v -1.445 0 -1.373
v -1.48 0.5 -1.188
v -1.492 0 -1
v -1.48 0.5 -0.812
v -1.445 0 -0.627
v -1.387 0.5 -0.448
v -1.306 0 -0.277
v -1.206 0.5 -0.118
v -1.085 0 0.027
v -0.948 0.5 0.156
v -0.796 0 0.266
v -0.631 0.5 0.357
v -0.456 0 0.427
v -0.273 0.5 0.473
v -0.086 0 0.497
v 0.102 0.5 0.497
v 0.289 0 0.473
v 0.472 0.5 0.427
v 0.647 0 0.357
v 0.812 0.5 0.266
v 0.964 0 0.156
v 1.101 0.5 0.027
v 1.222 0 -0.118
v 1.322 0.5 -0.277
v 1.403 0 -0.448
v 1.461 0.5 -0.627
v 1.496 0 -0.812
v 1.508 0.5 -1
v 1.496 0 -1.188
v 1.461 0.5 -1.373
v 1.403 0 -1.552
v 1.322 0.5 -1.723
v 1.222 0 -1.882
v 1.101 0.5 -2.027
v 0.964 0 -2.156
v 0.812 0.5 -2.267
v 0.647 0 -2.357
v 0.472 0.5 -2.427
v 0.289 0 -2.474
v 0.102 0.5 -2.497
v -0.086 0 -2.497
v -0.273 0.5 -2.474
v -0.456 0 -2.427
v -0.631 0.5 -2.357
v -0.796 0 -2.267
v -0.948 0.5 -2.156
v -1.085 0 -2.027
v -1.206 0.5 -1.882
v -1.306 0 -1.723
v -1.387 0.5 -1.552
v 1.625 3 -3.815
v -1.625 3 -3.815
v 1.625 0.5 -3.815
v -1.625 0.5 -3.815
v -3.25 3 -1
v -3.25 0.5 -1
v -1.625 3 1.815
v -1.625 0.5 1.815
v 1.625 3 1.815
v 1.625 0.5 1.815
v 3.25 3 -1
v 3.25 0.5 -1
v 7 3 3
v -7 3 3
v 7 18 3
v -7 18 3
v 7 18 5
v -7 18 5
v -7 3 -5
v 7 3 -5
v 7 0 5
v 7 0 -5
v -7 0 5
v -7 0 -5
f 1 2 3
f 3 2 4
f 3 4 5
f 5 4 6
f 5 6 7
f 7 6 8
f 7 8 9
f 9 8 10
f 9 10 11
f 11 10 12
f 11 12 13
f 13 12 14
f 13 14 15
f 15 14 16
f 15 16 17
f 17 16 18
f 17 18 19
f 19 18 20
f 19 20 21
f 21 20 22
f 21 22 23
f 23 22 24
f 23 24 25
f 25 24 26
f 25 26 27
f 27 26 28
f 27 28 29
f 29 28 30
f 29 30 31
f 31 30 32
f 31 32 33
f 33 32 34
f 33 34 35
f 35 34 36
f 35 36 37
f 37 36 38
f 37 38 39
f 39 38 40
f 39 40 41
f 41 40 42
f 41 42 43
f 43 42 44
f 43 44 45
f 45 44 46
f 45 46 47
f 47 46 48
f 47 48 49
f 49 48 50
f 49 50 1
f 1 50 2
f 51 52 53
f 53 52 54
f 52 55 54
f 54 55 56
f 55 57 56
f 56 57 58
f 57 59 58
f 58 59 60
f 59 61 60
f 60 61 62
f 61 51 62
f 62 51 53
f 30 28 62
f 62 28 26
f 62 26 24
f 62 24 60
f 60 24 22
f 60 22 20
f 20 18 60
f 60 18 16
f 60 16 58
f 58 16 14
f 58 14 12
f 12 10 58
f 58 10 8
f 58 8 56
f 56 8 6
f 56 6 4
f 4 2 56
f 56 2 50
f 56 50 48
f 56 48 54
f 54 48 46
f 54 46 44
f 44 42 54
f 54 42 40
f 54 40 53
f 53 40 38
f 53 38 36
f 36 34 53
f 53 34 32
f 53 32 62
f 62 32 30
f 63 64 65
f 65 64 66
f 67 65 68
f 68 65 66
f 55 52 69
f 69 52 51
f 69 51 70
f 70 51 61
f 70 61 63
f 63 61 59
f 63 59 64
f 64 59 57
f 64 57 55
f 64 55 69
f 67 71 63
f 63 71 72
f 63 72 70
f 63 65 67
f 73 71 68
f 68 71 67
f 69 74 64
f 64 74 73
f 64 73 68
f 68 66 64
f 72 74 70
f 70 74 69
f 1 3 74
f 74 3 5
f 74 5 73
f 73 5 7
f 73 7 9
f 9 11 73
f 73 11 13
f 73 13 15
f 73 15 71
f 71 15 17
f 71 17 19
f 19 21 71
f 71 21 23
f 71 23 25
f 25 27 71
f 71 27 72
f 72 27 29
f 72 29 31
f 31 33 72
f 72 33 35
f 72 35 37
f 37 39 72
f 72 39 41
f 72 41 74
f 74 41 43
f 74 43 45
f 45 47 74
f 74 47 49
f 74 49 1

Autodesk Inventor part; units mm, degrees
ref_plane "YZ Plane" through (0, 0, 0) normal (1, 0, 0) x (0, 1, 0)
ref_plane "XZ Plane" through (0, 0, 0) normal (0, 1, 0) x (-1, 0, 0)
ref_plane "XY Plane" through (0, 0, 0) normal (0, 0, 1) x (1, 0, 0)
sketch "Sketch1" plane through (0, 0, 0) normal (0, 1, 0) x (-1, 0, 0)
  line L0 (9.8, 0) -> (-9.8, 0) projected
  line L1 (0, -7) -> (0, 7) projected
  line L2 (-7, 5) -> (7, 5)
  line L3 (7, 5) -> (7, -5)
  line L4 (7, -5) -> (-7, -5)
  line L5 (-7, -5) -> (-7, 5)
  line L6 (-7, 5) -> (7, -5) construction
  line L7 (7, 5) -> (-7, -5) construction
  point P0 (0, 0)
  dimension "d0" = 14
  dimension "d1" = 10
extrude "Extrusion1" add sketch "Sketch1" along normal blind 3
sketch "Sketch2" plane through (0, 3, 0) normal (0, 1, 0) x (1, 0, 0)
  line L0 (-7, 5) -> (-7, -5) projected
  line L1 (7, -5) -> (7, 5) projected
  line L2 (-7, -5) -> (7, -5)
  line L3 (7, -5) -> (7, -3)
  line L4 (7, -3) -> (-7, -3)
  line L5 (-7, -3) -> (-7, -5)
  point P0 (0, 0)
  point P1 (7, -5)
  point P2 (-7, -3)
  dimension "d4" = 2
extrude "Extrusion2" add sketch "Sketch2" along normal blind 15
sketch "Sketch4" plane through (0, 3, 0) normal (0, 1, 0) x (1, 0, 0)
  line L0 (1.625, -1.8146) -> (-1.625, -1.8146)
  line L1 (-1.625, -1.8146) -> (-3.25, 1)
  line L2 (-3.25, 1) -> (-1.625, 3.8146)
  line L3 (-1.625, 3.8146) -> (1.625, 3.8146)
  line L4 (1.625, 3.8146) -> (3.25, 1)
  line L5 (3.25, 1) -> (1.625, -1.8146)
  line L6 (7, 5) -> (-7, 5) projected
  line L7 (-7, 5) -> (-7, -3) projected
  point P0 (0, 0)
  point P1 (0, 1)
  dimension "d8" = 6.5
  dimension "d9" = 3.25
  dimension "d10" = 4
  dimension "d11" = 7
extrude "Extrusion3" cut sketch "Sketch4" against normal blind 2.5
sketch "Sketch5" plane through (0, 0.5, 0) normal (0, 1, 0) x (1, 0, 0)
  line L0 (-3.25, 1) -> (-1.625, 3.8146) projected
  line L1 (-1.625, 3.8146) -> (1.625, 3.8146) projected
  point P0 (0, 0)
  point P1 (0.008, 1.0001)
  dimension "d21" = 2.8215
  dimension "d22" = 2.8145
hole "Hole1" at (0.008, 0.5, -1.0001) direction (0, -1, 0) diameter 3 end through all
properties part number "uchwyt_krancowka_alternatywa_2"
